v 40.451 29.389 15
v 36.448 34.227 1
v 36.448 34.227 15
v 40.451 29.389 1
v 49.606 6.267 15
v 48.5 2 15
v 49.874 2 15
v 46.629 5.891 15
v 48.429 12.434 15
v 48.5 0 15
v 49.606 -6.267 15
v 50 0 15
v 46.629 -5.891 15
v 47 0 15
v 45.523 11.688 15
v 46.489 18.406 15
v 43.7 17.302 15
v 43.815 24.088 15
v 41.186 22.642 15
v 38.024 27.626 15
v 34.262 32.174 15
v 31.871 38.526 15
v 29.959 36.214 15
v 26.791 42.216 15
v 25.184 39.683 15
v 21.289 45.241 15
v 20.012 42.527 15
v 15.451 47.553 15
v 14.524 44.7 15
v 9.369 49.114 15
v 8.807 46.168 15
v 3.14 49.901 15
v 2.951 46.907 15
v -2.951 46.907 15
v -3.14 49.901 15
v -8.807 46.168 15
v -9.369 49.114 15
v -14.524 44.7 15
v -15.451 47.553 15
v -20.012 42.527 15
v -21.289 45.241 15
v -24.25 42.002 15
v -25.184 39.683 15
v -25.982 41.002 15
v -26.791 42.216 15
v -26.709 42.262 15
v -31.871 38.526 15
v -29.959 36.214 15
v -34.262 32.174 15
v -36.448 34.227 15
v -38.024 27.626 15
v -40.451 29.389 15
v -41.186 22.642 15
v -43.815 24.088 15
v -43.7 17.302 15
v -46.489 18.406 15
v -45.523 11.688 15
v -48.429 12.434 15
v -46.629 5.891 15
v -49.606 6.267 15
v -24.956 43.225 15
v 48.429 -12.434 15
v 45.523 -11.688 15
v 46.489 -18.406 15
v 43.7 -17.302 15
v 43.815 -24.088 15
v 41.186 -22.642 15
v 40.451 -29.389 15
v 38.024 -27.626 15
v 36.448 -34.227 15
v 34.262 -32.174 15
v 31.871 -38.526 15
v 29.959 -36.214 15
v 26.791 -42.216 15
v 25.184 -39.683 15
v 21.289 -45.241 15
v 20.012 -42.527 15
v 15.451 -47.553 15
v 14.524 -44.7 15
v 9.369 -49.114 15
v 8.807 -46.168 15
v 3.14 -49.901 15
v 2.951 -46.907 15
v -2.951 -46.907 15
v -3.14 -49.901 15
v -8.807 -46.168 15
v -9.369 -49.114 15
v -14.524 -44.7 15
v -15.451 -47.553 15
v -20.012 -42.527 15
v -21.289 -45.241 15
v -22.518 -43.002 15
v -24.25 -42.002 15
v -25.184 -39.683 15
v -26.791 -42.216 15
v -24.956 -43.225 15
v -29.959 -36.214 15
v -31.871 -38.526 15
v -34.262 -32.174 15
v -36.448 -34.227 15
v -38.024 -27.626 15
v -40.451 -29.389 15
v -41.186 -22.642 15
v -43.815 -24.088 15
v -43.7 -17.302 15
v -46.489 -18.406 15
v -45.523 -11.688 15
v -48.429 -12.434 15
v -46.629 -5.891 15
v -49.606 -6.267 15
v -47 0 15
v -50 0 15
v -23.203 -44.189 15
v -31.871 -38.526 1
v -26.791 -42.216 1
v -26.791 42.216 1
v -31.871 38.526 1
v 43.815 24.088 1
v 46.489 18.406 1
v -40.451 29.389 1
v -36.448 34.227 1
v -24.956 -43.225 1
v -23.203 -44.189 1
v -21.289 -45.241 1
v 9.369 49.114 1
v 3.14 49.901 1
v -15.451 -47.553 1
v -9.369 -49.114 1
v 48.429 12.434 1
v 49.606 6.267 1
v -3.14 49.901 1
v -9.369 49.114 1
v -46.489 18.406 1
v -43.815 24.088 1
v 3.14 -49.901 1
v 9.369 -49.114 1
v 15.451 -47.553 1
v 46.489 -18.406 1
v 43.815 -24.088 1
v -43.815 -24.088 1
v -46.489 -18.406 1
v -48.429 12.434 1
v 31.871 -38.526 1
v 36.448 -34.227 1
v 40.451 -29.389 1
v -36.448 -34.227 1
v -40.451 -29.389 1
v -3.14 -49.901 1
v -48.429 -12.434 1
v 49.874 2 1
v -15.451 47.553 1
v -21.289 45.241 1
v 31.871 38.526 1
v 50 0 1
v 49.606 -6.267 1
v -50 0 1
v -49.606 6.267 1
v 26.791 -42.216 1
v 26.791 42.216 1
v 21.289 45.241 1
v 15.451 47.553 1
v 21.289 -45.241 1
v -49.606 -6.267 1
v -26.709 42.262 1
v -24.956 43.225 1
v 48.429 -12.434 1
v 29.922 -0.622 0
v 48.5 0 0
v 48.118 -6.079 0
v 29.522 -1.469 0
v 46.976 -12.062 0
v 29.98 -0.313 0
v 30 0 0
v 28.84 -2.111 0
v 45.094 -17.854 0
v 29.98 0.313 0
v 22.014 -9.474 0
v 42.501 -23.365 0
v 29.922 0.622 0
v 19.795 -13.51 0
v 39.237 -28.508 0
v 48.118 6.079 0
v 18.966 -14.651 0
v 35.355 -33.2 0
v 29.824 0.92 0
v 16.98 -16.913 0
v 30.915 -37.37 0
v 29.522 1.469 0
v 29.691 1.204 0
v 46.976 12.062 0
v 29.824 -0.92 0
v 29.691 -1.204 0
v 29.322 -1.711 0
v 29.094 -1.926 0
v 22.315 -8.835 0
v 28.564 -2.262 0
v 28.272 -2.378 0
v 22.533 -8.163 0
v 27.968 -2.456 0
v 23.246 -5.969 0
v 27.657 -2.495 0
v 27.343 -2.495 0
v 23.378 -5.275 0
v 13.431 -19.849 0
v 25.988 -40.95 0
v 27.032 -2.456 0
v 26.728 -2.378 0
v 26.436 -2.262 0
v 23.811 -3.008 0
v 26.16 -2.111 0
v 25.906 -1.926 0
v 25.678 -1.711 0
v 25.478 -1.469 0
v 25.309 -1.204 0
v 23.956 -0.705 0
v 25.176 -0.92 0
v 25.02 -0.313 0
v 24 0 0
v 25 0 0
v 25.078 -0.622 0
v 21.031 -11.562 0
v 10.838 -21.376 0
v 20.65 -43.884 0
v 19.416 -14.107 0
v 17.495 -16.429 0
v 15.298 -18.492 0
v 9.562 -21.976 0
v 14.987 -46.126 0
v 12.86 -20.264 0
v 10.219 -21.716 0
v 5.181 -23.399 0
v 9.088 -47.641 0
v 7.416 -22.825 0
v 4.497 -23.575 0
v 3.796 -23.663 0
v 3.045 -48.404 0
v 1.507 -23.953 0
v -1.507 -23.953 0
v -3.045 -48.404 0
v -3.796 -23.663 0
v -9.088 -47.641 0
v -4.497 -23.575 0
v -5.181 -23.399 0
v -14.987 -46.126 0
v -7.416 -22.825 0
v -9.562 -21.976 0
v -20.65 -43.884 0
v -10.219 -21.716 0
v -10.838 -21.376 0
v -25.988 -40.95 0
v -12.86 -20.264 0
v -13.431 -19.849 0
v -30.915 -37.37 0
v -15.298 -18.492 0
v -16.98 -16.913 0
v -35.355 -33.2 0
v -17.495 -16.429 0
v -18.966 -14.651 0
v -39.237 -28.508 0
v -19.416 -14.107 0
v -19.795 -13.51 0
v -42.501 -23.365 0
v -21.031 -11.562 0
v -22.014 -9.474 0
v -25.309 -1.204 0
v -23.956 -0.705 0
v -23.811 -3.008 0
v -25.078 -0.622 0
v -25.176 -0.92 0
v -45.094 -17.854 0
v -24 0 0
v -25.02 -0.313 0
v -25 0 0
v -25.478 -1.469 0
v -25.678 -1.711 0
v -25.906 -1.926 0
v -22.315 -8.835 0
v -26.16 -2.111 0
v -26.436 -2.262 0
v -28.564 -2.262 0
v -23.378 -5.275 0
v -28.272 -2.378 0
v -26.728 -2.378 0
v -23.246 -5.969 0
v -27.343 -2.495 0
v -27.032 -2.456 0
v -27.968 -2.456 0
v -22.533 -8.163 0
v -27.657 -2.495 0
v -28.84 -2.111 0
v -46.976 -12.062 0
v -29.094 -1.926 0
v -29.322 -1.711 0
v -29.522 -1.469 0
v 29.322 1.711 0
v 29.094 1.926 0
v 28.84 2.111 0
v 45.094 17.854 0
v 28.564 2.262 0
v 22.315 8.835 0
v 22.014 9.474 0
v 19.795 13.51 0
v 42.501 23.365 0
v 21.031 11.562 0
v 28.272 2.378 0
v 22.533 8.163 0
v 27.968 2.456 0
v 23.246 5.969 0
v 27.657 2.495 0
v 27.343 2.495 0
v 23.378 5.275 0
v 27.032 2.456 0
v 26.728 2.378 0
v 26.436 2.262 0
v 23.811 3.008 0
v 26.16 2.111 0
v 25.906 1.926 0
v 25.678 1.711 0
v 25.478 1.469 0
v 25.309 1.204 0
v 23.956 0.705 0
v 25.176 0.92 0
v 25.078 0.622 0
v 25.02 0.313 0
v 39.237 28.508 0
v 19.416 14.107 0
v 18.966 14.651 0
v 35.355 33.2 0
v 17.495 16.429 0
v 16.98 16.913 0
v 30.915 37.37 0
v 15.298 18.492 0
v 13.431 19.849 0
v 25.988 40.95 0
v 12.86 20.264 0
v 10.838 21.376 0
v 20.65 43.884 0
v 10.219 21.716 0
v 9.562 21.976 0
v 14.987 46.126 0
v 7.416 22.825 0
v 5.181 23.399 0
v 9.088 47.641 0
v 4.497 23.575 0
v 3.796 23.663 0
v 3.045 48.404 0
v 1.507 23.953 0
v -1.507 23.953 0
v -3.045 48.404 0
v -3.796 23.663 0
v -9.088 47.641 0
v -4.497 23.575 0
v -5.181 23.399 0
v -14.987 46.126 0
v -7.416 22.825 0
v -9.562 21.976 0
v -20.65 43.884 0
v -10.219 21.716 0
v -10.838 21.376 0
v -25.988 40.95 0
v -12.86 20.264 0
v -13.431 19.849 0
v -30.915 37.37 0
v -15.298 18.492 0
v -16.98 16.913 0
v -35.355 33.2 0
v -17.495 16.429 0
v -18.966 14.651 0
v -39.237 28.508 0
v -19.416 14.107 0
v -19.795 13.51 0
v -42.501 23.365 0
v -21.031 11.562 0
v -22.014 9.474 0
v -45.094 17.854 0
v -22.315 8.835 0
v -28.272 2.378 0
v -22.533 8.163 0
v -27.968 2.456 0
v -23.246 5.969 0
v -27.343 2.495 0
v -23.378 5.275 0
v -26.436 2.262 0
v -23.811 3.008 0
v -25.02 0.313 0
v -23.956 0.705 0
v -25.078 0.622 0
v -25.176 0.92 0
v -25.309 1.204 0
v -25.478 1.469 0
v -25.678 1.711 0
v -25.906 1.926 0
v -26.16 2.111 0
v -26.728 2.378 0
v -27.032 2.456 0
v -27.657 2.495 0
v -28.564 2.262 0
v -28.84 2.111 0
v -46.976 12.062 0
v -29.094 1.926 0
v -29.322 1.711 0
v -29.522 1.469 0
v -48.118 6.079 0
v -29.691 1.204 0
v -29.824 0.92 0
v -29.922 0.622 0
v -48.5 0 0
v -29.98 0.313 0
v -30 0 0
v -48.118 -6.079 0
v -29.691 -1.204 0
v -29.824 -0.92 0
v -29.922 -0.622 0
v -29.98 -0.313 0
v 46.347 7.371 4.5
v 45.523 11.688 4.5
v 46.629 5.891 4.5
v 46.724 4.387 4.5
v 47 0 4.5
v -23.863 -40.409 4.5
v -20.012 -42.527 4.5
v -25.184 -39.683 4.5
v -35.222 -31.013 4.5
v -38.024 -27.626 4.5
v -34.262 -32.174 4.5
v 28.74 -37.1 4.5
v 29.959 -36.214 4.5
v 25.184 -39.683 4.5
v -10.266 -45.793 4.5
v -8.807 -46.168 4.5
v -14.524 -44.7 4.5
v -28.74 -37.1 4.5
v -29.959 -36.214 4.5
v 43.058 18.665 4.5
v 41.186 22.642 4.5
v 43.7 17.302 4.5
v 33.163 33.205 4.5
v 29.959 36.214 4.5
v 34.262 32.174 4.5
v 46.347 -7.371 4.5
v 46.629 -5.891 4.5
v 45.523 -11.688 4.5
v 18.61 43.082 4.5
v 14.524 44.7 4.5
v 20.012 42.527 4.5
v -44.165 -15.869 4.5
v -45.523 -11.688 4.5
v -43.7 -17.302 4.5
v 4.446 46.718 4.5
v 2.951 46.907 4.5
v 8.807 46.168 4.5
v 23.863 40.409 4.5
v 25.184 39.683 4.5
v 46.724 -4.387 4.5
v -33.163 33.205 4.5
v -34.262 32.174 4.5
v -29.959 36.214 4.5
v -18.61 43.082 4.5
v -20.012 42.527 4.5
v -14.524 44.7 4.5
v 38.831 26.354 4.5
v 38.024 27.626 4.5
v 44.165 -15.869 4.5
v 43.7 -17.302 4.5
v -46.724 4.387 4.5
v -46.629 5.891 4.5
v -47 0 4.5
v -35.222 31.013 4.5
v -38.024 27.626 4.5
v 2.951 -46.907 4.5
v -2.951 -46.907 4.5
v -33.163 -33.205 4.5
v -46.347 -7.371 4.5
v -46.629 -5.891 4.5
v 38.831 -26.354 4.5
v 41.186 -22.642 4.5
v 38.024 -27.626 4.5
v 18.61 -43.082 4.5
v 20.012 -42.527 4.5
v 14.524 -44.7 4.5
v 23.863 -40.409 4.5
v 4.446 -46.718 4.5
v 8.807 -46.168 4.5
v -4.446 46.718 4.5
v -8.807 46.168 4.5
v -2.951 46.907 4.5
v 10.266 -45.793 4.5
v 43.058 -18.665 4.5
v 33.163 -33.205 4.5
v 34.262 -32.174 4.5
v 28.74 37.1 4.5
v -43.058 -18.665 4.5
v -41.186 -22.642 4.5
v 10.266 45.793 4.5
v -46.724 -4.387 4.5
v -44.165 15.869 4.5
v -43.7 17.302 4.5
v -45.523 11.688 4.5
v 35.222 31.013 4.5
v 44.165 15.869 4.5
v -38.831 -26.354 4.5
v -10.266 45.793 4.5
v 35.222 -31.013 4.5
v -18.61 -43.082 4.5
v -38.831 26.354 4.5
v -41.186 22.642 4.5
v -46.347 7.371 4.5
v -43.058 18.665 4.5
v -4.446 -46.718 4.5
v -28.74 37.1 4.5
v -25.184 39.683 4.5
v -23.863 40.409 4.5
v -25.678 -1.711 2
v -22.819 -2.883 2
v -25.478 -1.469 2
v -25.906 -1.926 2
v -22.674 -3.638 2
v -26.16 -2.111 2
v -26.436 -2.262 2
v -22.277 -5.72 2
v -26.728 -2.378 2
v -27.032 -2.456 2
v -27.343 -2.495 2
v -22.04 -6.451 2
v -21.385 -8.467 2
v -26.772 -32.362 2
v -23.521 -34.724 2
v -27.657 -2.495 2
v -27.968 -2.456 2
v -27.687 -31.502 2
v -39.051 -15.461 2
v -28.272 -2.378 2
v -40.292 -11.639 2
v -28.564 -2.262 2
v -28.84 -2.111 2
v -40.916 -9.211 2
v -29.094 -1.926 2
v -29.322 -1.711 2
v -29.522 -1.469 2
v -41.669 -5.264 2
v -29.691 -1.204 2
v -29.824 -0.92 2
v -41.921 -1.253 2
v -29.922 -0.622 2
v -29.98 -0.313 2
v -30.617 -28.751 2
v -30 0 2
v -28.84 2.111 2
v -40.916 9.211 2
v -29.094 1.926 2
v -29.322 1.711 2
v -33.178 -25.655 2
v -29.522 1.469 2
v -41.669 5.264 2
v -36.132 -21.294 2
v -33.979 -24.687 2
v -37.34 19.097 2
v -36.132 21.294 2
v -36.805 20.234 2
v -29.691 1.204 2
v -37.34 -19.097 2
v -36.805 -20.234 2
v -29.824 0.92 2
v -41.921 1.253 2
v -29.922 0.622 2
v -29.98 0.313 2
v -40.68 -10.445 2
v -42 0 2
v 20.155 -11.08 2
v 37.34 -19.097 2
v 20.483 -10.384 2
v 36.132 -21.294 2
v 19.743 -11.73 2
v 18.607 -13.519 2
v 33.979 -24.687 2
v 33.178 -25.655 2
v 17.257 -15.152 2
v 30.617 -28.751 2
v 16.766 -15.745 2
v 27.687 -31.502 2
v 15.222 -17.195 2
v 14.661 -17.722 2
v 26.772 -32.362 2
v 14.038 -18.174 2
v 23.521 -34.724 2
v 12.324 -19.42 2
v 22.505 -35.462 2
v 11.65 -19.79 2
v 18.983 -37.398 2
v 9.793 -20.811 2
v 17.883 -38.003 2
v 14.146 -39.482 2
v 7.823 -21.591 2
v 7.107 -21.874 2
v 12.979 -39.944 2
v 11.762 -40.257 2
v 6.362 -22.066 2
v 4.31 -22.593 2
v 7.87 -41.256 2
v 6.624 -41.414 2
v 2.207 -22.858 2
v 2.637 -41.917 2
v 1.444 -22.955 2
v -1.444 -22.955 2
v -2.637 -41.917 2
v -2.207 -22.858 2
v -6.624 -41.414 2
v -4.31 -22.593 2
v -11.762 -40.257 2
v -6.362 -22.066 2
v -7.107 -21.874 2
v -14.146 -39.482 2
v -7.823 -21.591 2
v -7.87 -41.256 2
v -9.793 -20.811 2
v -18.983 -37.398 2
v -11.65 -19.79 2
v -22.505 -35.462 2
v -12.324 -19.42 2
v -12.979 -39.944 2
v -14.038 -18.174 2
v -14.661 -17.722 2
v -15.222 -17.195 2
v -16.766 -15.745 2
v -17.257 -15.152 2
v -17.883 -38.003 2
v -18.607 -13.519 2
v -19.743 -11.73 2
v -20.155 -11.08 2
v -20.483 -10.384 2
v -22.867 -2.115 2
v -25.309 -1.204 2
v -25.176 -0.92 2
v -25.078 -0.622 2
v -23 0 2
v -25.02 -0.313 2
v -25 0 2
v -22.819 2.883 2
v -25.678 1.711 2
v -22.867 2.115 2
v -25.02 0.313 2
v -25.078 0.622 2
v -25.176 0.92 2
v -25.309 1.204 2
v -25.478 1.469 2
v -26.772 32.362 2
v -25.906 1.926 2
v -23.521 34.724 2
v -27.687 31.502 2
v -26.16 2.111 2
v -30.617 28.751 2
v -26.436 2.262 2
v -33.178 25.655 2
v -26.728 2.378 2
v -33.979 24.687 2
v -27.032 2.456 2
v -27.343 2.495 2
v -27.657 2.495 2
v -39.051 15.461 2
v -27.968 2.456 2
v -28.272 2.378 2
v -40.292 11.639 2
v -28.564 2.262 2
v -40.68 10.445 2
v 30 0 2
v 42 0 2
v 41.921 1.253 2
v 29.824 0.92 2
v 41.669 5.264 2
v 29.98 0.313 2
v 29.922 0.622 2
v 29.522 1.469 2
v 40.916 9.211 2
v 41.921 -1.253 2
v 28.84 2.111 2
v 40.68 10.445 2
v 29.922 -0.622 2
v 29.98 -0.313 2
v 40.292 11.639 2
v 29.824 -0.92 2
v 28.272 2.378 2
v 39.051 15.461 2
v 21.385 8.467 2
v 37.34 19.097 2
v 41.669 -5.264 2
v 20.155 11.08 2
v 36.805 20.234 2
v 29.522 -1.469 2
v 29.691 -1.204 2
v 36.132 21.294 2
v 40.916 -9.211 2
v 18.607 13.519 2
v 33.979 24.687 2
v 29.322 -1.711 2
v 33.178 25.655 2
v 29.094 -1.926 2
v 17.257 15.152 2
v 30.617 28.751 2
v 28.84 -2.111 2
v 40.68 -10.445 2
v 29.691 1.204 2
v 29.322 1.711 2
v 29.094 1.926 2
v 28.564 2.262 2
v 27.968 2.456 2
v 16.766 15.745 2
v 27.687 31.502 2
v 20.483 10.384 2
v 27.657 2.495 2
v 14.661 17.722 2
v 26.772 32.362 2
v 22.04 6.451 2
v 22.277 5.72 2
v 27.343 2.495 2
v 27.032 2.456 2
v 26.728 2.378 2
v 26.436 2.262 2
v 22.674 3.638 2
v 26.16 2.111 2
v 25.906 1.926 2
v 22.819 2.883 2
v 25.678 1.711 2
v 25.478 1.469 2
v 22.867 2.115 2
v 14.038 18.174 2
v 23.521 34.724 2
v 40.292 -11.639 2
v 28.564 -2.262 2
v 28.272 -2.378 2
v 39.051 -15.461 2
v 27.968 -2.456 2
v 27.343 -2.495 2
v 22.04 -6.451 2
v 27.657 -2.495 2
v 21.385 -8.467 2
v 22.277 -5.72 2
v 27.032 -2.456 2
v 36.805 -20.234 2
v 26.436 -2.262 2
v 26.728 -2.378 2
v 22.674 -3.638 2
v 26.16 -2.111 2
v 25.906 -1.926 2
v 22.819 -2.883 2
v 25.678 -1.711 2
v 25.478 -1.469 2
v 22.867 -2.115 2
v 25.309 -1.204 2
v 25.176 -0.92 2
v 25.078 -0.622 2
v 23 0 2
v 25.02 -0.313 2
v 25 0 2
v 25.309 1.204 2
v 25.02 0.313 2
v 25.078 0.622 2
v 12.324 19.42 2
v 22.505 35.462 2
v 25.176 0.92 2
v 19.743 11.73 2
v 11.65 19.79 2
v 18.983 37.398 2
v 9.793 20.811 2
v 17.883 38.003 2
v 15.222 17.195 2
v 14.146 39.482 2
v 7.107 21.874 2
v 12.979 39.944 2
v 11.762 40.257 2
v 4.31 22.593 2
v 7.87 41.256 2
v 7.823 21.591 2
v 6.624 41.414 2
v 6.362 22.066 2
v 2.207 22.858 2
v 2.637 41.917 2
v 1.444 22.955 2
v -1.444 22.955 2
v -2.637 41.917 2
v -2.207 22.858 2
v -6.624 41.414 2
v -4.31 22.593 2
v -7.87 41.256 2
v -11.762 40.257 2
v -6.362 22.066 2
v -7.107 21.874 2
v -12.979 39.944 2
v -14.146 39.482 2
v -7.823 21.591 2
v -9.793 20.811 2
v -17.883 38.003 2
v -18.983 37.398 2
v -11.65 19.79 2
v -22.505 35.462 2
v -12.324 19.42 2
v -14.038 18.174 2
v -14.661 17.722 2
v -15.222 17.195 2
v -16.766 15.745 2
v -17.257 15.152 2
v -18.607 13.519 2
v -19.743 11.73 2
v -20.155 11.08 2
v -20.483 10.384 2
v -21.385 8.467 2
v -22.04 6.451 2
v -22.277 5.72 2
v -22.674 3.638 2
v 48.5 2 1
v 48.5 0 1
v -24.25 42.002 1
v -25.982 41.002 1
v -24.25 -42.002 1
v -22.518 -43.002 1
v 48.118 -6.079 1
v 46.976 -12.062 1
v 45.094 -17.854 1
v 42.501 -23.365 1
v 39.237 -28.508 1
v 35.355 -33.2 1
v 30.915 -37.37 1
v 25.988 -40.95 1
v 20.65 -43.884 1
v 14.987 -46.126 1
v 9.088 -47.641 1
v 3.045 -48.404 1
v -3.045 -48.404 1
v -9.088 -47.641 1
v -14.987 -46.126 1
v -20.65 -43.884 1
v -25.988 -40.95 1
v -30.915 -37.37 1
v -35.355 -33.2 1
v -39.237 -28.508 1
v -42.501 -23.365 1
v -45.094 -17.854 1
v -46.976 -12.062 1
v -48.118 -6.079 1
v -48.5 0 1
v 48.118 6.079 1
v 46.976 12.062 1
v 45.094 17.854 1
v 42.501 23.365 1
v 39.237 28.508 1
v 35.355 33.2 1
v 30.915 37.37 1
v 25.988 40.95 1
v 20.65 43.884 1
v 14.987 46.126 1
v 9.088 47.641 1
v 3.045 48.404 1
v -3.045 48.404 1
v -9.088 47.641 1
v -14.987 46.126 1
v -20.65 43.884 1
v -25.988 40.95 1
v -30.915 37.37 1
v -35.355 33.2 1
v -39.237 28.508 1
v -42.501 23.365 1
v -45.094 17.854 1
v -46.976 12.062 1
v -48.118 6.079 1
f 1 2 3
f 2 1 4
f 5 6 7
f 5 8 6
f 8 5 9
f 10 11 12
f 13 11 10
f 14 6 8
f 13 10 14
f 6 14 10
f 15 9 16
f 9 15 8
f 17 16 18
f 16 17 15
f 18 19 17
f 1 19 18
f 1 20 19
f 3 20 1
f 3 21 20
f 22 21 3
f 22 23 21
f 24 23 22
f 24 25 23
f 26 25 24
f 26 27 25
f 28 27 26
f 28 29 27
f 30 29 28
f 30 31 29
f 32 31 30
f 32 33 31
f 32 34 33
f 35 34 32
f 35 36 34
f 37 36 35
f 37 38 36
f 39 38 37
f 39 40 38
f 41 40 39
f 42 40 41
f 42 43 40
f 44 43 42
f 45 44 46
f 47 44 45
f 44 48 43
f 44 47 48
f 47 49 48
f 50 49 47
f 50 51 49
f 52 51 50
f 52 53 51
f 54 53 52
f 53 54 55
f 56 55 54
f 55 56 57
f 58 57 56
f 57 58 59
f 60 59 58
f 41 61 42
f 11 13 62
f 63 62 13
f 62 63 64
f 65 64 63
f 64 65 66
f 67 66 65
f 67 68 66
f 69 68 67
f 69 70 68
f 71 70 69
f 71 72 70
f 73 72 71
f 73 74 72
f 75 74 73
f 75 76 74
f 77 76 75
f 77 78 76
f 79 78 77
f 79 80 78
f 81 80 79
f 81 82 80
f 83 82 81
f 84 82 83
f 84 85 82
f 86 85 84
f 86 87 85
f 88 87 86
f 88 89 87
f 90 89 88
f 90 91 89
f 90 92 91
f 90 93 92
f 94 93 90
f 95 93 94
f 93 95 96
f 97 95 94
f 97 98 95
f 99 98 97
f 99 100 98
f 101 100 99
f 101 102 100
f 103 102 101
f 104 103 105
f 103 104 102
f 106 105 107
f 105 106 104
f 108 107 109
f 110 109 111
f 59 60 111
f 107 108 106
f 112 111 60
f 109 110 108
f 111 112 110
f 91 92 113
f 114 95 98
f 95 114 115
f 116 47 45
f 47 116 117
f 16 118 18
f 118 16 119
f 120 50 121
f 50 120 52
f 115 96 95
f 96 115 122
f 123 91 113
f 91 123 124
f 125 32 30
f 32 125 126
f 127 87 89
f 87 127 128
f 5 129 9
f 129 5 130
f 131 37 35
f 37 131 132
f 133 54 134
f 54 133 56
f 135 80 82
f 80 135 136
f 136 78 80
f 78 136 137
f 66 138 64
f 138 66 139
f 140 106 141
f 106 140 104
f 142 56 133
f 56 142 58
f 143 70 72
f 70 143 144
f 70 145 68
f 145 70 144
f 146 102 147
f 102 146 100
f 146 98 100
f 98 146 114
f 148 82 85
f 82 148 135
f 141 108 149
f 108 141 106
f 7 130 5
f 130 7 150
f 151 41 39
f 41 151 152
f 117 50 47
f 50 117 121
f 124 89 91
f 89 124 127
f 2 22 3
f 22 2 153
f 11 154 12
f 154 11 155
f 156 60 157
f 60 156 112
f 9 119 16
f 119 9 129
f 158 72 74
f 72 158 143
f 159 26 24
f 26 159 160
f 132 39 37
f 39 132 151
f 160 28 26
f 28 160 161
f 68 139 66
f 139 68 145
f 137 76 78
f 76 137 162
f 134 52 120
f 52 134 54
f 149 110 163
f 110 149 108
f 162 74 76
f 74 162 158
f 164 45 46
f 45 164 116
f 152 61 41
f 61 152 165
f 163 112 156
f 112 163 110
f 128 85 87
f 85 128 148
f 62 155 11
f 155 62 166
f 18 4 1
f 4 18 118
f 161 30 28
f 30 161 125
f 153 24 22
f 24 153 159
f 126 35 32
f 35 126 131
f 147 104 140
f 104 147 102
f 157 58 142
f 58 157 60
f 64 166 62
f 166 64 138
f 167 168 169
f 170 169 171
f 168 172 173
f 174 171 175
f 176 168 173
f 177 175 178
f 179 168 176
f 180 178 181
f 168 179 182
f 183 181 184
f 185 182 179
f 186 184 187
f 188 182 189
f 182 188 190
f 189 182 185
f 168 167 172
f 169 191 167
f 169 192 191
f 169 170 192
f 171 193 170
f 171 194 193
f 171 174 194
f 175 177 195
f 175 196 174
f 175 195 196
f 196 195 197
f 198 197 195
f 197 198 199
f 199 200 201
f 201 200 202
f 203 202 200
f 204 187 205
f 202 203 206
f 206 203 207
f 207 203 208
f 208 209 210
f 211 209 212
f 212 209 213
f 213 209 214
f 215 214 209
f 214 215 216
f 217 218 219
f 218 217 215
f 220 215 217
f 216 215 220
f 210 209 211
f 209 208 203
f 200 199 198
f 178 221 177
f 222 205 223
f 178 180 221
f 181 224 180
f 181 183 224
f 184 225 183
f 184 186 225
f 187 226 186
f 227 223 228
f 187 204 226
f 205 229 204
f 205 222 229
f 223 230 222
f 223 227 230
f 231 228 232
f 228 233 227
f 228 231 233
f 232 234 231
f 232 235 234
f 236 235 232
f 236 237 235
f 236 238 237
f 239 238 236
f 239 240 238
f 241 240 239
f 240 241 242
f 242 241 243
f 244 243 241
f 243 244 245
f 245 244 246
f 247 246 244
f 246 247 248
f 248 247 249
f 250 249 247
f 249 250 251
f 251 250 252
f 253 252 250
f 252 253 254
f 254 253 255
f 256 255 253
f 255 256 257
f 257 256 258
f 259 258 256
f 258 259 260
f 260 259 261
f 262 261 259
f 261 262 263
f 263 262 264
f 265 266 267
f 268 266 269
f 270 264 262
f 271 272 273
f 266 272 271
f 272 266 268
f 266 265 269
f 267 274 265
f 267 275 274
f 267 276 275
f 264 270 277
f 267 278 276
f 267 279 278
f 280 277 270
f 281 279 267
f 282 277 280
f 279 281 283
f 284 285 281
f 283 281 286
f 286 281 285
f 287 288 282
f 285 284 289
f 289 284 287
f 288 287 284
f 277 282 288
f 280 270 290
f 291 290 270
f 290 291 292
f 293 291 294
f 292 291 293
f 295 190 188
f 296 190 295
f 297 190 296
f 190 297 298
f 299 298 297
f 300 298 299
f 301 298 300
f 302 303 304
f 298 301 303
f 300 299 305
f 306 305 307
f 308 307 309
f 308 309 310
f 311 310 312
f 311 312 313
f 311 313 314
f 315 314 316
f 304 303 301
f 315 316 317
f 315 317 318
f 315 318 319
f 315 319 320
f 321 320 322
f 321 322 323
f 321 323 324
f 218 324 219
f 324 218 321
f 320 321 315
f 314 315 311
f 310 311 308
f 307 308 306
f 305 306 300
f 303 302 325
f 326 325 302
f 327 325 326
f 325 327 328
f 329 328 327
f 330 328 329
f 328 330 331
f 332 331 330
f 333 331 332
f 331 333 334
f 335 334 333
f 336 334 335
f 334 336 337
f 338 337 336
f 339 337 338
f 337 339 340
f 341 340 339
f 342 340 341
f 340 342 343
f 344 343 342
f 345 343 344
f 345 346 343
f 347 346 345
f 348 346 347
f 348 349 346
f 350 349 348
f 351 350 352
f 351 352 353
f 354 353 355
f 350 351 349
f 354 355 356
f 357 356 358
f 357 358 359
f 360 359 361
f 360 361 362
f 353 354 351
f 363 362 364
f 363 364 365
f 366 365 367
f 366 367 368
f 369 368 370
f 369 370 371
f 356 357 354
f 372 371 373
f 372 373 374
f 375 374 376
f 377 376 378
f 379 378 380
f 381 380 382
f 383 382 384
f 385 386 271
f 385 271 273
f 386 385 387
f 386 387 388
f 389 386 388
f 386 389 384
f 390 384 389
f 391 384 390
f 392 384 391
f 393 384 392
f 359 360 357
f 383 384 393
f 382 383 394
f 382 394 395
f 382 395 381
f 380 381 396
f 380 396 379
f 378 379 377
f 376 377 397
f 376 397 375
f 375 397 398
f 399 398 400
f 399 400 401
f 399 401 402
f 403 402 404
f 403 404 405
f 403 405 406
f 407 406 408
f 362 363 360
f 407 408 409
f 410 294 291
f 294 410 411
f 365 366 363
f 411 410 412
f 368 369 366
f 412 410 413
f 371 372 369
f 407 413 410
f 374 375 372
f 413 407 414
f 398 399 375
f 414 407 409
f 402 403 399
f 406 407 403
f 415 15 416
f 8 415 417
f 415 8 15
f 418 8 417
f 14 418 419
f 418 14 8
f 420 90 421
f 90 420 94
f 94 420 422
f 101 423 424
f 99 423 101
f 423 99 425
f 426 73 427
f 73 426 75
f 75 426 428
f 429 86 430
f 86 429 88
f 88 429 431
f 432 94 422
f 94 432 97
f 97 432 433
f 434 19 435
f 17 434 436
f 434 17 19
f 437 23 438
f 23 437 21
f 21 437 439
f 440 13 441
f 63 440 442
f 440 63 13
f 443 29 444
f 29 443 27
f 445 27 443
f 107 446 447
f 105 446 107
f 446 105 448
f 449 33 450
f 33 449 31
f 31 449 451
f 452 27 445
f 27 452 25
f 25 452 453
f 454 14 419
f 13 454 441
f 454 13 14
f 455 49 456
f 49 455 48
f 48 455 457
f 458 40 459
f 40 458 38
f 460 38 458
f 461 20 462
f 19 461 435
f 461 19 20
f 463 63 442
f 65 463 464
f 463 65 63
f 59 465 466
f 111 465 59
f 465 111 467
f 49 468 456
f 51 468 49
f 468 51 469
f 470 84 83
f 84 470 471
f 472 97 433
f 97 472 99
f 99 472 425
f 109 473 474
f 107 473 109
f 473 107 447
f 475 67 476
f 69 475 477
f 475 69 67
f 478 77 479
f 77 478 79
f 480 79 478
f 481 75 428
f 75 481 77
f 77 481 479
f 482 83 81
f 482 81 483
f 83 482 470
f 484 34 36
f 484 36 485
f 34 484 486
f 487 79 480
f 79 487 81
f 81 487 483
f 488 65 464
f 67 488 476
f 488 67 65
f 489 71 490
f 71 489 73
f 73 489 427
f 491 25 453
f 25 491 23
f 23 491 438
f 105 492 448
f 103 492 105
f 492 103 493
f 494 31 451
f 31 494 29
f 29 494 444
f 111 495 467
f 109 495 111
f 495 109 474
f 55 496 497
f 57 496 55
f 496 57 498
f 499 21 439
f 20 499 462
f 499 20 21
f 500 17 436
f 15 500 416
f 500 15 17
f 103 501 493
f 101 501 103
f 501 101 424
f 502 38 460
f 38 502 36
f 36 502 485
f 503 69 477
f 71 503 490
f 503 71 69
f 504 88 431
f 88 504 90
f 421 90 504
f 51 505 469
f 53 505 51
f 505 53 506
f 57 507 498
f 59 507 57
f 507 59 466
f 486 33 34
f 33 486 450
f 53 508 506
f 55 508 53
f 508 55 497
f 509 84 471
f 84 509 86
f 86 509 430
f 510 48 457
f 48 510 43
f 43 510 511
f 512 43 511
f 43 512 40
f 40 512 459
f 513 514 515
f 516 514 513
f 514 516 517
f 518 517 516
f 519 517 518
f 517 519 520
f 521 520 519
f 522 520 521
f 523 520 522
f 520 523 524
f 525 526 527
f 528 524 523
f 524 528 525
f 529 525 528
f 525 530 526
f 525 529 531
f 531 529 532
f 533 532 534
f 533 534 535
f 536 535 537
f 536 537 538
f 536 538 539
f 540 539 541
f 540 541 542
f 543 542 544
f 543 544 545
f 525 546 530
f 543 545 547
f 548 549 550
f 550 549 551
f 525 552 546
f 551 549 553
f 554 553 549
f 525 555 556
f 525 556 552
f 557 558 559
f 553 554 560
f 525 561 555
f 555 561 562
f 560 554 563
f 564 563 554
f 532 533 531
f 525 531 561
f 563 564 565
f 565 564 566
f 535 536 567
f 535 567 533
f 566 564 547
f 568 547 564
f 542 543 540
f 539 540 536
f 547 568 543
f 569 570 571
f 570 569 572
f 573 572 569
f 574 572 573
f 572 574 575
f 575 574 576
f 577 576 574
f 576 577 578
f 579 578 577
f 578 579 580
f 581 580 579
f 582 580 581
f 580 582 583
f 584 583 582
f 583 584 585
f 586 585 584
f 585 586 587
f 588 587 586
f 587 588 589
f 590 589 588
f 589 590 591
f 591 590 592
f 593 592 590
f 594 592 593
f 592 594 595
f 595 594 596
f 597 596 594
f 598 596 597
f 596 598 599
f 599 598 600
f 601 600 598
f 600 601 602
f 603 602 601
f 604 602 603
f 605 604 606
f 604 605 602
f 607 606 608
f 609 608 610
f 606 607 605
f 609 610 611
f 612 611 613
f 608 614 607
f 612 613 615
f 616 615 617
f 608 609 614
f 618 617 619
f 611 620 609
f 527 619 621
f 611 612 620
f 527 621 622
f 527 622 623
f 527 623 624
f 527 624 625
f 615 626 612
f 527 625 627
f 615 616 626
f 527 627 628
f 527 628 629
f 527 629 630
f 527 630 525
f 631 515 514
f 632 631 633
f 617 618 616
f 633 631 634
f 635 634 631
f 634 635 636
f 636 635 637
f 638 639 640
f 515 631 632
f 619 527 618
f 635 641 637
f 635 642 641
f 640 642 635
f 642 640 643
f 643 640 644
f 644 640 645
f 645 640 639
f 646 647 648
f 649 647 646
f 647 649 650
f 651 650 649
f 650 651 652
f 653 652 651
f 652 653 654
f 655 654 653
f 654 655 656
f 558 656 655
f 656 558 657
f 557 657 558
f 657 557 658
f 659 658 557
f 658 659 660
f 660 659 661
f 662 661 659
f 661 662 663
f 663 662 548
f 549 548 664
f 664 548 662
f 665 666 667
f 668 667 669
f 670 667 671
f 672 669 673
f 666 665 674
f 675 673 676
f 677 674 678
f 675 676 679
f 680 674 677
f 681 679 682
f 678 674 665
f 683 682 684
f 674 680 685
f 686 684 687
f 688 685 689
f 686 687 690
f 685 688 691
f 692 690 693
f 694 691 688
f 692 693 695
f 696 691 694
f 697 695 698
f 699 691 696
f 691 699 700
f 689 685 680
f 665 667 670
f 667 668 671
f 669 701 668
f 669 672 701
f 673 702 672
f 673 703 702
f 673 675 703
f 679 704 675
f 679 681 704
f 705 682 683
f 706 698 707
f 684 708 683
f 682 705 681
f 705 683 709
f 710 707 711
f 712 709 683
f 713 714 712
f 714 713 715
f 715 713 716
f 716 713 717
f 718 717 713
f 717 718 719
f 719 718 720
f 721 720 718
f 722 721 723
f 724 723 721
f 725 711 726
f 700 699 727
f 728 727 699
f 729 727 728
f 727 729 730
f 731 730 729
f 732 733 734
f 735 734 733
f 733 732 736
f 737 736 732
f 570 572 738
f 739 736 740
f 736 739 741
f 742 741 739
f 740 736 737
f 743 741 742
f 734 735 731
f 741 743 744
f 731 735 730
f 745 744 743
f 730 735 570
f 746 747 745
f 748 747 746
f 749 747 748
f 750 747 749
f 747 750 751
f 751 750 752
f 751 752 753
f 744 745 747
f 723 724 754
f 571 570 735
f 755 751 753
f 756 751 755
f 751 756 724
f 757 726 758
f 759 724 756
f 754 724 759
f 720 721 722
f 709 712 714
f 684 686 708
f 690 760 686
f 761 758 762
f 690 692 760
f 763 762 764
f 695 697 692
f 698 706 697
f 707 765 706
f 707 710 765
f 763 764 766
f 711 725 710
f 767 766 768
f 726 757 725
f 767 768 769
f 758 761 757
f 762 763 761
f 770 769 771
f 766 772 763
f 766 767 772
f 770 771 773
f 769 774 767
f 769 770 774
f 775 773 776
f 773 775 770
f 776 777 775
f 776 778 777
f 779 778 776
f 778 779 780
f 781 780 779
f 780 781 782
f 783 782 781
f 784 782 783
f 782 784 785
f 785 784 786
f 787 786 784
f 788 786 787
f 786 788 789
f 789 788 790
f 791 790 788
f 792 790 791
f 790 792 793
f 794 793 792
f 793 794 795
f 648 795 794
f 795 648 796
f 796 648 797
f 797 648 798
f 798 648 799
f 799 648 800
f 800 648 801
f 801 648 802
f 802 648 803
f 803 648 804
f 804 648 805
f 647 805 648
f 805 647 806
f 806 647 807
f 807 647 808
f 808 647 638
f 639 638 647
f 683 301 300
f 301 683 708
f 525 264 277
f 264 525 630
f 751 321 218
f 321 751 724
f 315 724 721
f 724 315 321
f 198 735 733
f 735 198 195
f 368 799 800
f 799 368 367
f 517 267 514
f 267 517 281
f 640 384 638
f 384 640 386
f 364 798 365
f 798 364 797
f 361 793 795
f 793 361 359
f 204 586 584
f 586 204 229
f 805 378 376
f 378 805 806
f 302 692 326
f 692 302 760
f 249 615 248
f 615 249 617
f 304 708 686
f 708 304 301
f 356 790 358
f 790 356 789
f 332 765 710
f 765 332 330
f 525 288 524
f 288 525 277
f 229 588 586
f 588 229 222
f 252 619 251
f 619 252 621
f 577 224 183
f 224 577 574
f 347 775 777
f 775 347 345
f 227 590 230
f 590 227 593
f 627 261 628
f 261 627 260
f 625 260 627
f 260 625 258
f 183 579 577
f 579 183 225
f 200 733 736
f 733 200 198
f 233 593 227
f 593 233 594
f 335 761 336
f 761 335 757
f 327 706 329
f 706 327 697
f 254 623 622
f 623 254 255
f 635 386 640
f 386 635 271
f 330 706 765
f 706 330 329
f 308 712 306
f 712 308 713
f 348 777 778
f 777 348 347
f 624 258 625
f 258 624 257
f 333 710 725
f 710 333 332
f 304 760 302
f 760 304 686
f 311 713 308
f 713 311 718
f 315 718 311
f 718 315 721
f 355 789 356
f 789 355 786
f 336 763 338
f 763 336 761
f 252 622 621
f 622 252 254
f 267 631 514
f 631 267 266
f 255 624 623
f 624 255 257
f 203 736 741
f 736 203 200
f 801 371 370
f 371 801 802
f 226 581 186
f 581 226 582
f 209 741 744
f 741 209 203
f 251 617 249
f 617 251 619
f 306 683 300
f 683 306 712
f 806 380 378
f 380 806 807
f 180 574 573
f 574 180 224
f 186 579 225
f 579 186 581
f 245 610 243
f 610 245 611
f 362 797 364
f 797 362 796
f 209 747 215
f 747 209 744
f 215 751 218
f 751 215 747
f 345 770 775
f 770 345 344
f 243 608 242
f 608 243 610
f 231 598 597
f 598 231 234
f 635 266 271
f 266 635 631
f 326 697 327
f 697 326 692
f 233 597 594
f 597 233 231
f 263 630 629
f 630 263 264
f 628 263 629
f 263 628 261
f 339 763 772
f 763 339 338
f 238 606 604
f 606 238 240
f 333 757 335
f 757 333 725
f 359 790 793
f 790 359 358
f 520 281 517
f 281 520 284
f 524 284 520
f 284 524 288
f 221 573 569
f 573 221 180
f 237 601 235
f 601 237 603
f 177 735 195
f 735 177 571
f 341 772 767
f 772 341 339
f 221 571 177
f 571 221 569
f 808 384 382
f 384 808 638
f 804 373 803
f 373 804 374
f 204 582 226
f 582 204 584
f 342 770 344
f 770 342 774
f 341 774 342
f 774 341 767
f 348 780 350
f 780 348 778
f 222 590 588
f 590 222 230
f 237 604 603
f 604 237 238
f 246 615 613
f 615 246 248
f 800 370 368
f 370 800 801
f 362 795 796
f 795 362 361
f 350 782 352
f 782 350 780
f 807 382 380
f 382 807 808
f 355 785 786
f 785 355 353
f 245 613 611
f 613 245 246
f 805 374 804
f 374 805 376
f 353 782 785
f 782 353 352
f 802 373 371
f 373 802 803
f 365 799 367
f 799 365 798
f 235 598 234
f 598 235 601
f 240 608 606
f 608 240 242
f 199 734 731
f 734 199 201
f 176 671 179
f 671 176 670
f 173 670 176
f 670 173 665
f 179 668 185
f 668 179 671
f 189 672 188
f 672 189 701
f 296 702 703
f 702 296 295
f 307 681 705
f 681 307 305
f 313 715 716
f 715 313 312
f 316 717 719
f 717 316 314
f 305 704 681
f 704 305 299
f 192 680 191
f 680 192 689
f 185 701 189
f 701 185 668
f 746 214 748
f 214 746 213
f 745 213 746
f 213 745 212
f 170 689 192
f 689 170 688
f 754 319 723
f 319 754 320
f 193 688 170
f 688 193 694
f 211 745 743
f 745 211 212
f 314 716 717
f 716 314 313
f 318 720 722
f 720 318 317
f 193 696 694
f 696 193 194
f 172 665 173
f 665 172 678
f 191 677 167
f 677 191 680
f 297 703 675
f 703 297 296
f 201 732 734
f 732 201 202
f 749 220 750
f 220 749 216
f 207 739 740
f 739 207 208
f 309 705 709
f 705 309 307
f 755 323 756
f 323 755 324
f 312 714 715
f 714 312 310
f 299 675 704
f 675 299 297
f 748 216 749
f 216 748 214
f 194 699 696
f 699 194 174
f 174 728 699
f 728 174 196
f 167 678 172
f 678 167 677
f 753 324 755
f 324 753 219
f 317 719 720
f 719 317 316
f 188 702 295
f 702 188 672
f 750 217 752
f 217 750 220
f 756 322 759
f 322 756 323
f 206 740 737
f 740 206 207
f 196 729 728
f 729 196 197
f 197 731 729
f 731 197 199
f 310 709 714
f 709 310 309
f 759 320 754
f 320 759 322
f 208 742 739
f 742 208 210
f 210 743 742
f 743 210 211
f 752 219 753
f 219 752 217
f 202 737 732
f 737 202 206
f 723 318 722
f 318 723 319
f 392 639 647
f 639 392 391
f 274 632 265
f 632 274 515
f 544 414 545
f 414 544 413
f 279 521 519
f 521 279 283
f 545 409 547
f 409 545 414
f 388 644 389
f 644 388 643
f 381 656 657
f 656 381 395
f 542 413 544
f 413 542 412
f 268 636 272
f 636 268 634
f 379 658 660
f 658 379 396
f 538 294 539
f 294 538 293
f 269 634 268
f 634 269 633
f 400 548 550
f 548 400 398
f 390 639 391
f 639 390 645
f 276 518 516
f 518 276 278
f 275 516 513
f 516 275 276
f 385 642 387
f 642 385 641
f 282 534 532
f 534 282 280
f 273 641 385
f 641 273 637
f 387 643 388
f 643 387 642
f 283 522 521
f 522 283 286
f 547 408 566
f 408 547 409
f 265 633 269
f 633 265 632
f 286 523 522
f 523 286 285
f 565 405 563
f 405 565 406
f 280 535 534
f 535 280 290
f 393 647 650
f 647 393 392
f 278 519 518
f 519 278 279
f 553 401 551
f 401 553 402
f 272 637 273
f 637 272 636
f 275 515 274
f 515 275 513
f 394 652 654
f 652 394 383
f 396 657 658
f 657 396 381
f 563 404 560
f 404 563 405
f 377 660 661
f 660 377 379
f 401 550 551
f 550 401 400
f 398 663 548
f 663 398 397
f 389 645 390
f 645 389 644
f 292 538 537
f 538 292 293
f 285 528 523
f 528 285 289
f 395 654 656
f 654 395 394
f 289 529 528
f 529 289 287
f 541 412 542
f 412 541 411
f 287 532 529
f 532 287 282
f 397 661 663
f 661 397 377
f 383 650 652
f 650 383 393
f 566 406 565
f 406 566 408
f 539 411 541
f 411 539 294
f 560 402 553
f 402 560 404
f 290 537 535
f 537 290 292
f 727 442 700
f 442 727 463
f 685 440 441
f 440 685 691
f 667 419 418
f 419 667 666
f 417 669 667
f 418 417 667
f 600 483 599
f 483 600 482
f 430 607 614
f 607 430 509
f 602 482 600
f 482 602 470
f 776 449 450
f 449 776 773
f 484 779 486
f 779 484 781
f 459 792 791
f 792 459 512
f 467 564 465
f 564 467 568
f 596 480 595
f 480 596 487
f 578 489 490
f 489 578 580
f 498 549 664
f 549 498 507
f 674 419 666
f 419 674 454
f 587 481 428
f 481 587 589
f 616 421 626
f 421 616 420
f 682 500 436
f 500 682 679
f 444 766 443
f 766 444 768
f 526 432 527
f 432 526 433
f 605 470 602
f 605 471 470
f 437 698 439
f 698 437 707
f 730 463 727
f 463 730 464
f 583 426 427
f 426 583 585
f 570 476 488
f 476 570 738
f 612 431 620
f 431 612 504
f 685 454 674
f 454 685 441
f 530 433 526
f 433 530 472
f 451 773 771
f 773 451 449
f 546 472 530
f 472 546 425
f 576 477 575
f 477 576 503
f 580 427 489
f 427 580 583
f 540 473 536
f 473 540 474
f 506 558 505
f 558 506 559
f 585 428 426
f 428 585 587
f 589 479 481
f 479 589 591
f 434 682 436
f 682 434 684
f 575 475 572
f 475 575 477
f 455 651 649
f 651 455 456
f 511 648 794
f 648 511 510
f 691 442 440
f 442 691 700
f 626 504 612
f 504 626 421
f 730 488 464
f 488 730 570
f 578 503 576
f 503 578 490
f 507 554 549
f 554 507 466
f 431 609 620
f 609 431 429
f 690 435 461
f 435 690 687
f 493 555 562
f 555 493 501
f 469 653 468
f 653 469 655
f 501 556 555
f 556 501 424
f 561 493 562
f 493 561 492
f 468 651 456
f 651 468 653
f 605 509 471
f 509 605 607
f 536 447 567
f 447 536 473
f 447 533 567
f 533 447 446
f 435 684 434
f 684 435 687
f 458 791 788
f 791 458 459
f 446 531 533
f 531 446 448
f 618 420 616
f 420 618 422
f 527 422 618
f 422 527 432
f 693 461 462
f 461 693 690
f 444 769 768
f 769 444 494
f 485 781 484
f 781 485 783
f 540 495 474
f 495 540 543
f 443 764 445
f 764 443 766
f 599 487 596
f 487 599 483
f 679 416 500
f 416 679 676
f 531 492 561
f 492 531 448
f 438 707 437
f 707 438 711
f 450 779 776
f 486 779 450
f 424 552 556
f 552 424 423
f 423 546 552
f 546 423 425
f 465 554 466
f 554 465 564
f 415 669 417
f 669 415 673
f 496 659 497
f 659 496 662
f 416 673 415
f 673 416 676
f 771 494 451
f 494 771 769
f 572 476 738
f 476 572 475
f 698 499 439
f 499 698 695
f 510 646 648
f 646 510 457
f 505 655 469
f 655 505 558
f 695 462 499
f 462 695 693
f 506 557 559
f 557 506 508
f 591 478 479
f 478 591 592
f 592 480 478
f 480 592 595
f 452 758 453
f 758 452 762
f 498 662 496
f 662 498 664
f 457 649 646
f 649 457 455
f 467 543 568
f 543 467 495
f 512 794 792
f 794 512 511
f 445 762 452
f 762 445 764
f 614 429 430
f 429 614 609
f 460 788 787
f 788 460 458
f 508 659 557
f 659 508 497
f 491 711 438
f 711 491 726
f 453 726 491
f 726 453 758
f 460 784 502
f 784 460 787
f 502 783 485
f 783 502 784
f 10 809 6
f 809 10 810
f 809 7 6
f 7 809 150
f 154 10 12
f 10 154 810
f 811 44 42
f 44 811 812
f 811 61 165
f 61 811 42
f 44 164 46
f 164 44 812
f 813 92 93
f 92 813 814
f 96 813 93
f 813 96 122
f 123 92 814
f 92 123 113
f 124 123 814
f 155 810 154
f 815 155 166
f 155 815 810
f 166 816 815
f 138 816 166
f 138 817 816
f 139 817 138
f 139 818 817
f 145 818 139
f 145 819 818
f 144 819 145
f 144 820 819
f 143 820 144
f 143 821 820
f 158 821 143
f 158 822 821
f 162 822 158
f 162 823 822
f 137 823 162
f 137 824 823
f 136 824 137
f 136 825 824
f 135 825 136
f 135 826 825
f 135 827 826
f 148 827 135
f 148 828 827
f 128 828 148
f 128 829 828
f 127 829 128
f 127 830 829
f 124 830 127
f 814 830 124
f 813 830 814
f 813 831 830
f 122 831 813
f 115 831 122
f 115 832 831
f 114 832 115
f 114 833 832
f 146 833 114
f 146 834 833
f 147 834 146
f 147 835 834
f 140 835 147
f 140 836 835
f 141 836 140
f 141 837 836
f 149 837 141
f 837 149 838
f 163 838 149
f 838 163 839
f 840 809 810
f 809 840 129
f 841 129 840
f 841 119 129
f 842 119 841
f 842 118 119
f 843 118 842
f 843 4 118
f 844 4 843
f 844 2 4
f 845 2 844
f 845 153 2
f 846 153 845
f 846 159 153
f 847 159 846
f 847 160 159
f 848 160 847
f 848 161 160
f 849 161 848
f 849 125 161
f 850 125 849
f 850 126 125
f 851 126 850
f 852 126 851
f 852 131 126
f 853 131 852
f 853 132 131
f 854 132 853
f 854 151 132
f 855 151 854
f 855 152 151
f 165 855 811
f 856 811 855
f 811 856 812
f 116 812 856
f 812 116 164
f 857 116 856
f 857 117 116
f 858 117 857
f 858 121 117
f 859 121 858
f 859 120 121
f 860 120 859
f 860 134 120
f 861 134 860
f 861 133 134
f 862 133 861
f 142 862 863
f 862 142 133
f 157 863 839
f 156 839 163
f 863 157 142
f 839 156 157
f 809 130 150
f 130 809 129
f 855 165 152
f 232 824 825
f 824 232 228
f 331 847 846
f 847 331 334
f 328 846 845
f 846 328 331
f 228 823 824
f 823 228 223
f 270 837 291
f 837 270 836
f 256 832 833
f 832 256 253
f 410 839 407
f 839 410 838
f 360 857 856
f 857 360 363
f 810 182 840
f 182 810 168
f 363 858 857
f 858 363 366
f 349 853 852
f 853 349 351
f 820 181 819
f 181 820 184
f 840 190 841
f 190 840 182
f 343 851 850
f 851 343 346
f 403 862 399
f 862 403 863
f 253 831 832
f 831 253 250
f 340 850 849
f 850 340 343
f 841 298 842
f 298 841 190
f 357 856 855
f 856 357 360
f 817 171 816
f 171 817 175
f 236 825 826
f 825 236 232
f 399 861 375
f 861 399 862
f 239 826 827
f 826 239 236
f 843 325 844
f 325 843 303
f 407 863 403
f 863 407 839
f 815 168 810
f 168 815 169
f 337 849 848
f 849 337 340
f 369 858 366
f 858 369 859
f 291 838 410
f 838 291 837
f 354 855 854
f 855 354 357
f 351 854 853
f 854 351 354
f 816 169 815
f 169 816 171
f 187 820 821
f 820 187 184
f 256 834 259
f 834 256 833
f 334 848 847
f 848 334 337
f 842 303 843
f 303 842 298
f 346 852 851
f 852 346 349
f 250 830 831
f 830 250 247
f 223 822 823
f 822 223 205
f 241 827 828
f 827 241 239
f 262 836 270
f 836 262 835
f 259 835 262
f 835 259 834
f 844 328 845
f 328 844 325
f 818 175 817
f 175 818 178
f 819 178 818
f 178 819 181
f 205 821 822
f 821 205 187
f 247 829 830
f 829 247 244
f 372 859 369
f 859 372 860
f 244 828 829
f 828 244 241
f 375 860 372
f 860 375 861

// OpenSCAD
// screws
house_diameter = 100;
screw_distance = 55;
n_slots = 3;
subdivision = 50;


difference () {
    
    union() {
           
        difference() { 
            cylinder(d1=house_diameter, d2=house_diameter, h=15, $fn=subdivision);
            translate([0,0,-1]) cylinder(d1=house_diameter-6, d2=house_diameter-6, h=17, $fn=subdivision);
        }
        
        difference() { 
            cylinder(r1=house_diameter/2, r2=house_diameter/2, h=2, $fn=subdivision);
            translate([0,0,-1]) cylinder(d1=screw_distance-6, d2=screw_distance-10, h=4, $fn=subdivision);
            
            translate([screw_distance/2,0,-1]) cylinder(r1=2.5, r2=2.5, h=4, $fn=subdivision);
            translate([-screw_distance/2,0,-1]) cylinder(r1=2.5, r2=2.5, h=4, $fn=subdivision);   
        }
        
       translate([0,0,2]) difference() {
            cylinder(d1=house_diameter-5, d2=house_diameter-5, h=3, $fn=subdivision);
            translate([0,0,-1]) cylinder(d1=house_diameter-20, d2=house_diameter, h=5, $fn=subdivision);
       }
    }
    
   
    for (a =[0:n_slots]) {        
        rotate([0,0,a*(360/n_slots)]) translate([(house_diameter/2)-1.5,0,-1]) cube([2,2,17]);
        *rotate([0,0,a*(360/n_slots)]) translate([(house_diameter/2)-1.5,0,0]) cube([2,10,2]);
    }
    
    translate([0,0,-1]) difference() {
        cylinder(d1=house_diameter+1, d2=house_diameter+1, h=2, $fn=subdivision);
        translate([0,0,-1]) cylinder(d1=house_diameter-3, d2=house_diameter-3, h=4, $fn=subdivision);
    }
}
